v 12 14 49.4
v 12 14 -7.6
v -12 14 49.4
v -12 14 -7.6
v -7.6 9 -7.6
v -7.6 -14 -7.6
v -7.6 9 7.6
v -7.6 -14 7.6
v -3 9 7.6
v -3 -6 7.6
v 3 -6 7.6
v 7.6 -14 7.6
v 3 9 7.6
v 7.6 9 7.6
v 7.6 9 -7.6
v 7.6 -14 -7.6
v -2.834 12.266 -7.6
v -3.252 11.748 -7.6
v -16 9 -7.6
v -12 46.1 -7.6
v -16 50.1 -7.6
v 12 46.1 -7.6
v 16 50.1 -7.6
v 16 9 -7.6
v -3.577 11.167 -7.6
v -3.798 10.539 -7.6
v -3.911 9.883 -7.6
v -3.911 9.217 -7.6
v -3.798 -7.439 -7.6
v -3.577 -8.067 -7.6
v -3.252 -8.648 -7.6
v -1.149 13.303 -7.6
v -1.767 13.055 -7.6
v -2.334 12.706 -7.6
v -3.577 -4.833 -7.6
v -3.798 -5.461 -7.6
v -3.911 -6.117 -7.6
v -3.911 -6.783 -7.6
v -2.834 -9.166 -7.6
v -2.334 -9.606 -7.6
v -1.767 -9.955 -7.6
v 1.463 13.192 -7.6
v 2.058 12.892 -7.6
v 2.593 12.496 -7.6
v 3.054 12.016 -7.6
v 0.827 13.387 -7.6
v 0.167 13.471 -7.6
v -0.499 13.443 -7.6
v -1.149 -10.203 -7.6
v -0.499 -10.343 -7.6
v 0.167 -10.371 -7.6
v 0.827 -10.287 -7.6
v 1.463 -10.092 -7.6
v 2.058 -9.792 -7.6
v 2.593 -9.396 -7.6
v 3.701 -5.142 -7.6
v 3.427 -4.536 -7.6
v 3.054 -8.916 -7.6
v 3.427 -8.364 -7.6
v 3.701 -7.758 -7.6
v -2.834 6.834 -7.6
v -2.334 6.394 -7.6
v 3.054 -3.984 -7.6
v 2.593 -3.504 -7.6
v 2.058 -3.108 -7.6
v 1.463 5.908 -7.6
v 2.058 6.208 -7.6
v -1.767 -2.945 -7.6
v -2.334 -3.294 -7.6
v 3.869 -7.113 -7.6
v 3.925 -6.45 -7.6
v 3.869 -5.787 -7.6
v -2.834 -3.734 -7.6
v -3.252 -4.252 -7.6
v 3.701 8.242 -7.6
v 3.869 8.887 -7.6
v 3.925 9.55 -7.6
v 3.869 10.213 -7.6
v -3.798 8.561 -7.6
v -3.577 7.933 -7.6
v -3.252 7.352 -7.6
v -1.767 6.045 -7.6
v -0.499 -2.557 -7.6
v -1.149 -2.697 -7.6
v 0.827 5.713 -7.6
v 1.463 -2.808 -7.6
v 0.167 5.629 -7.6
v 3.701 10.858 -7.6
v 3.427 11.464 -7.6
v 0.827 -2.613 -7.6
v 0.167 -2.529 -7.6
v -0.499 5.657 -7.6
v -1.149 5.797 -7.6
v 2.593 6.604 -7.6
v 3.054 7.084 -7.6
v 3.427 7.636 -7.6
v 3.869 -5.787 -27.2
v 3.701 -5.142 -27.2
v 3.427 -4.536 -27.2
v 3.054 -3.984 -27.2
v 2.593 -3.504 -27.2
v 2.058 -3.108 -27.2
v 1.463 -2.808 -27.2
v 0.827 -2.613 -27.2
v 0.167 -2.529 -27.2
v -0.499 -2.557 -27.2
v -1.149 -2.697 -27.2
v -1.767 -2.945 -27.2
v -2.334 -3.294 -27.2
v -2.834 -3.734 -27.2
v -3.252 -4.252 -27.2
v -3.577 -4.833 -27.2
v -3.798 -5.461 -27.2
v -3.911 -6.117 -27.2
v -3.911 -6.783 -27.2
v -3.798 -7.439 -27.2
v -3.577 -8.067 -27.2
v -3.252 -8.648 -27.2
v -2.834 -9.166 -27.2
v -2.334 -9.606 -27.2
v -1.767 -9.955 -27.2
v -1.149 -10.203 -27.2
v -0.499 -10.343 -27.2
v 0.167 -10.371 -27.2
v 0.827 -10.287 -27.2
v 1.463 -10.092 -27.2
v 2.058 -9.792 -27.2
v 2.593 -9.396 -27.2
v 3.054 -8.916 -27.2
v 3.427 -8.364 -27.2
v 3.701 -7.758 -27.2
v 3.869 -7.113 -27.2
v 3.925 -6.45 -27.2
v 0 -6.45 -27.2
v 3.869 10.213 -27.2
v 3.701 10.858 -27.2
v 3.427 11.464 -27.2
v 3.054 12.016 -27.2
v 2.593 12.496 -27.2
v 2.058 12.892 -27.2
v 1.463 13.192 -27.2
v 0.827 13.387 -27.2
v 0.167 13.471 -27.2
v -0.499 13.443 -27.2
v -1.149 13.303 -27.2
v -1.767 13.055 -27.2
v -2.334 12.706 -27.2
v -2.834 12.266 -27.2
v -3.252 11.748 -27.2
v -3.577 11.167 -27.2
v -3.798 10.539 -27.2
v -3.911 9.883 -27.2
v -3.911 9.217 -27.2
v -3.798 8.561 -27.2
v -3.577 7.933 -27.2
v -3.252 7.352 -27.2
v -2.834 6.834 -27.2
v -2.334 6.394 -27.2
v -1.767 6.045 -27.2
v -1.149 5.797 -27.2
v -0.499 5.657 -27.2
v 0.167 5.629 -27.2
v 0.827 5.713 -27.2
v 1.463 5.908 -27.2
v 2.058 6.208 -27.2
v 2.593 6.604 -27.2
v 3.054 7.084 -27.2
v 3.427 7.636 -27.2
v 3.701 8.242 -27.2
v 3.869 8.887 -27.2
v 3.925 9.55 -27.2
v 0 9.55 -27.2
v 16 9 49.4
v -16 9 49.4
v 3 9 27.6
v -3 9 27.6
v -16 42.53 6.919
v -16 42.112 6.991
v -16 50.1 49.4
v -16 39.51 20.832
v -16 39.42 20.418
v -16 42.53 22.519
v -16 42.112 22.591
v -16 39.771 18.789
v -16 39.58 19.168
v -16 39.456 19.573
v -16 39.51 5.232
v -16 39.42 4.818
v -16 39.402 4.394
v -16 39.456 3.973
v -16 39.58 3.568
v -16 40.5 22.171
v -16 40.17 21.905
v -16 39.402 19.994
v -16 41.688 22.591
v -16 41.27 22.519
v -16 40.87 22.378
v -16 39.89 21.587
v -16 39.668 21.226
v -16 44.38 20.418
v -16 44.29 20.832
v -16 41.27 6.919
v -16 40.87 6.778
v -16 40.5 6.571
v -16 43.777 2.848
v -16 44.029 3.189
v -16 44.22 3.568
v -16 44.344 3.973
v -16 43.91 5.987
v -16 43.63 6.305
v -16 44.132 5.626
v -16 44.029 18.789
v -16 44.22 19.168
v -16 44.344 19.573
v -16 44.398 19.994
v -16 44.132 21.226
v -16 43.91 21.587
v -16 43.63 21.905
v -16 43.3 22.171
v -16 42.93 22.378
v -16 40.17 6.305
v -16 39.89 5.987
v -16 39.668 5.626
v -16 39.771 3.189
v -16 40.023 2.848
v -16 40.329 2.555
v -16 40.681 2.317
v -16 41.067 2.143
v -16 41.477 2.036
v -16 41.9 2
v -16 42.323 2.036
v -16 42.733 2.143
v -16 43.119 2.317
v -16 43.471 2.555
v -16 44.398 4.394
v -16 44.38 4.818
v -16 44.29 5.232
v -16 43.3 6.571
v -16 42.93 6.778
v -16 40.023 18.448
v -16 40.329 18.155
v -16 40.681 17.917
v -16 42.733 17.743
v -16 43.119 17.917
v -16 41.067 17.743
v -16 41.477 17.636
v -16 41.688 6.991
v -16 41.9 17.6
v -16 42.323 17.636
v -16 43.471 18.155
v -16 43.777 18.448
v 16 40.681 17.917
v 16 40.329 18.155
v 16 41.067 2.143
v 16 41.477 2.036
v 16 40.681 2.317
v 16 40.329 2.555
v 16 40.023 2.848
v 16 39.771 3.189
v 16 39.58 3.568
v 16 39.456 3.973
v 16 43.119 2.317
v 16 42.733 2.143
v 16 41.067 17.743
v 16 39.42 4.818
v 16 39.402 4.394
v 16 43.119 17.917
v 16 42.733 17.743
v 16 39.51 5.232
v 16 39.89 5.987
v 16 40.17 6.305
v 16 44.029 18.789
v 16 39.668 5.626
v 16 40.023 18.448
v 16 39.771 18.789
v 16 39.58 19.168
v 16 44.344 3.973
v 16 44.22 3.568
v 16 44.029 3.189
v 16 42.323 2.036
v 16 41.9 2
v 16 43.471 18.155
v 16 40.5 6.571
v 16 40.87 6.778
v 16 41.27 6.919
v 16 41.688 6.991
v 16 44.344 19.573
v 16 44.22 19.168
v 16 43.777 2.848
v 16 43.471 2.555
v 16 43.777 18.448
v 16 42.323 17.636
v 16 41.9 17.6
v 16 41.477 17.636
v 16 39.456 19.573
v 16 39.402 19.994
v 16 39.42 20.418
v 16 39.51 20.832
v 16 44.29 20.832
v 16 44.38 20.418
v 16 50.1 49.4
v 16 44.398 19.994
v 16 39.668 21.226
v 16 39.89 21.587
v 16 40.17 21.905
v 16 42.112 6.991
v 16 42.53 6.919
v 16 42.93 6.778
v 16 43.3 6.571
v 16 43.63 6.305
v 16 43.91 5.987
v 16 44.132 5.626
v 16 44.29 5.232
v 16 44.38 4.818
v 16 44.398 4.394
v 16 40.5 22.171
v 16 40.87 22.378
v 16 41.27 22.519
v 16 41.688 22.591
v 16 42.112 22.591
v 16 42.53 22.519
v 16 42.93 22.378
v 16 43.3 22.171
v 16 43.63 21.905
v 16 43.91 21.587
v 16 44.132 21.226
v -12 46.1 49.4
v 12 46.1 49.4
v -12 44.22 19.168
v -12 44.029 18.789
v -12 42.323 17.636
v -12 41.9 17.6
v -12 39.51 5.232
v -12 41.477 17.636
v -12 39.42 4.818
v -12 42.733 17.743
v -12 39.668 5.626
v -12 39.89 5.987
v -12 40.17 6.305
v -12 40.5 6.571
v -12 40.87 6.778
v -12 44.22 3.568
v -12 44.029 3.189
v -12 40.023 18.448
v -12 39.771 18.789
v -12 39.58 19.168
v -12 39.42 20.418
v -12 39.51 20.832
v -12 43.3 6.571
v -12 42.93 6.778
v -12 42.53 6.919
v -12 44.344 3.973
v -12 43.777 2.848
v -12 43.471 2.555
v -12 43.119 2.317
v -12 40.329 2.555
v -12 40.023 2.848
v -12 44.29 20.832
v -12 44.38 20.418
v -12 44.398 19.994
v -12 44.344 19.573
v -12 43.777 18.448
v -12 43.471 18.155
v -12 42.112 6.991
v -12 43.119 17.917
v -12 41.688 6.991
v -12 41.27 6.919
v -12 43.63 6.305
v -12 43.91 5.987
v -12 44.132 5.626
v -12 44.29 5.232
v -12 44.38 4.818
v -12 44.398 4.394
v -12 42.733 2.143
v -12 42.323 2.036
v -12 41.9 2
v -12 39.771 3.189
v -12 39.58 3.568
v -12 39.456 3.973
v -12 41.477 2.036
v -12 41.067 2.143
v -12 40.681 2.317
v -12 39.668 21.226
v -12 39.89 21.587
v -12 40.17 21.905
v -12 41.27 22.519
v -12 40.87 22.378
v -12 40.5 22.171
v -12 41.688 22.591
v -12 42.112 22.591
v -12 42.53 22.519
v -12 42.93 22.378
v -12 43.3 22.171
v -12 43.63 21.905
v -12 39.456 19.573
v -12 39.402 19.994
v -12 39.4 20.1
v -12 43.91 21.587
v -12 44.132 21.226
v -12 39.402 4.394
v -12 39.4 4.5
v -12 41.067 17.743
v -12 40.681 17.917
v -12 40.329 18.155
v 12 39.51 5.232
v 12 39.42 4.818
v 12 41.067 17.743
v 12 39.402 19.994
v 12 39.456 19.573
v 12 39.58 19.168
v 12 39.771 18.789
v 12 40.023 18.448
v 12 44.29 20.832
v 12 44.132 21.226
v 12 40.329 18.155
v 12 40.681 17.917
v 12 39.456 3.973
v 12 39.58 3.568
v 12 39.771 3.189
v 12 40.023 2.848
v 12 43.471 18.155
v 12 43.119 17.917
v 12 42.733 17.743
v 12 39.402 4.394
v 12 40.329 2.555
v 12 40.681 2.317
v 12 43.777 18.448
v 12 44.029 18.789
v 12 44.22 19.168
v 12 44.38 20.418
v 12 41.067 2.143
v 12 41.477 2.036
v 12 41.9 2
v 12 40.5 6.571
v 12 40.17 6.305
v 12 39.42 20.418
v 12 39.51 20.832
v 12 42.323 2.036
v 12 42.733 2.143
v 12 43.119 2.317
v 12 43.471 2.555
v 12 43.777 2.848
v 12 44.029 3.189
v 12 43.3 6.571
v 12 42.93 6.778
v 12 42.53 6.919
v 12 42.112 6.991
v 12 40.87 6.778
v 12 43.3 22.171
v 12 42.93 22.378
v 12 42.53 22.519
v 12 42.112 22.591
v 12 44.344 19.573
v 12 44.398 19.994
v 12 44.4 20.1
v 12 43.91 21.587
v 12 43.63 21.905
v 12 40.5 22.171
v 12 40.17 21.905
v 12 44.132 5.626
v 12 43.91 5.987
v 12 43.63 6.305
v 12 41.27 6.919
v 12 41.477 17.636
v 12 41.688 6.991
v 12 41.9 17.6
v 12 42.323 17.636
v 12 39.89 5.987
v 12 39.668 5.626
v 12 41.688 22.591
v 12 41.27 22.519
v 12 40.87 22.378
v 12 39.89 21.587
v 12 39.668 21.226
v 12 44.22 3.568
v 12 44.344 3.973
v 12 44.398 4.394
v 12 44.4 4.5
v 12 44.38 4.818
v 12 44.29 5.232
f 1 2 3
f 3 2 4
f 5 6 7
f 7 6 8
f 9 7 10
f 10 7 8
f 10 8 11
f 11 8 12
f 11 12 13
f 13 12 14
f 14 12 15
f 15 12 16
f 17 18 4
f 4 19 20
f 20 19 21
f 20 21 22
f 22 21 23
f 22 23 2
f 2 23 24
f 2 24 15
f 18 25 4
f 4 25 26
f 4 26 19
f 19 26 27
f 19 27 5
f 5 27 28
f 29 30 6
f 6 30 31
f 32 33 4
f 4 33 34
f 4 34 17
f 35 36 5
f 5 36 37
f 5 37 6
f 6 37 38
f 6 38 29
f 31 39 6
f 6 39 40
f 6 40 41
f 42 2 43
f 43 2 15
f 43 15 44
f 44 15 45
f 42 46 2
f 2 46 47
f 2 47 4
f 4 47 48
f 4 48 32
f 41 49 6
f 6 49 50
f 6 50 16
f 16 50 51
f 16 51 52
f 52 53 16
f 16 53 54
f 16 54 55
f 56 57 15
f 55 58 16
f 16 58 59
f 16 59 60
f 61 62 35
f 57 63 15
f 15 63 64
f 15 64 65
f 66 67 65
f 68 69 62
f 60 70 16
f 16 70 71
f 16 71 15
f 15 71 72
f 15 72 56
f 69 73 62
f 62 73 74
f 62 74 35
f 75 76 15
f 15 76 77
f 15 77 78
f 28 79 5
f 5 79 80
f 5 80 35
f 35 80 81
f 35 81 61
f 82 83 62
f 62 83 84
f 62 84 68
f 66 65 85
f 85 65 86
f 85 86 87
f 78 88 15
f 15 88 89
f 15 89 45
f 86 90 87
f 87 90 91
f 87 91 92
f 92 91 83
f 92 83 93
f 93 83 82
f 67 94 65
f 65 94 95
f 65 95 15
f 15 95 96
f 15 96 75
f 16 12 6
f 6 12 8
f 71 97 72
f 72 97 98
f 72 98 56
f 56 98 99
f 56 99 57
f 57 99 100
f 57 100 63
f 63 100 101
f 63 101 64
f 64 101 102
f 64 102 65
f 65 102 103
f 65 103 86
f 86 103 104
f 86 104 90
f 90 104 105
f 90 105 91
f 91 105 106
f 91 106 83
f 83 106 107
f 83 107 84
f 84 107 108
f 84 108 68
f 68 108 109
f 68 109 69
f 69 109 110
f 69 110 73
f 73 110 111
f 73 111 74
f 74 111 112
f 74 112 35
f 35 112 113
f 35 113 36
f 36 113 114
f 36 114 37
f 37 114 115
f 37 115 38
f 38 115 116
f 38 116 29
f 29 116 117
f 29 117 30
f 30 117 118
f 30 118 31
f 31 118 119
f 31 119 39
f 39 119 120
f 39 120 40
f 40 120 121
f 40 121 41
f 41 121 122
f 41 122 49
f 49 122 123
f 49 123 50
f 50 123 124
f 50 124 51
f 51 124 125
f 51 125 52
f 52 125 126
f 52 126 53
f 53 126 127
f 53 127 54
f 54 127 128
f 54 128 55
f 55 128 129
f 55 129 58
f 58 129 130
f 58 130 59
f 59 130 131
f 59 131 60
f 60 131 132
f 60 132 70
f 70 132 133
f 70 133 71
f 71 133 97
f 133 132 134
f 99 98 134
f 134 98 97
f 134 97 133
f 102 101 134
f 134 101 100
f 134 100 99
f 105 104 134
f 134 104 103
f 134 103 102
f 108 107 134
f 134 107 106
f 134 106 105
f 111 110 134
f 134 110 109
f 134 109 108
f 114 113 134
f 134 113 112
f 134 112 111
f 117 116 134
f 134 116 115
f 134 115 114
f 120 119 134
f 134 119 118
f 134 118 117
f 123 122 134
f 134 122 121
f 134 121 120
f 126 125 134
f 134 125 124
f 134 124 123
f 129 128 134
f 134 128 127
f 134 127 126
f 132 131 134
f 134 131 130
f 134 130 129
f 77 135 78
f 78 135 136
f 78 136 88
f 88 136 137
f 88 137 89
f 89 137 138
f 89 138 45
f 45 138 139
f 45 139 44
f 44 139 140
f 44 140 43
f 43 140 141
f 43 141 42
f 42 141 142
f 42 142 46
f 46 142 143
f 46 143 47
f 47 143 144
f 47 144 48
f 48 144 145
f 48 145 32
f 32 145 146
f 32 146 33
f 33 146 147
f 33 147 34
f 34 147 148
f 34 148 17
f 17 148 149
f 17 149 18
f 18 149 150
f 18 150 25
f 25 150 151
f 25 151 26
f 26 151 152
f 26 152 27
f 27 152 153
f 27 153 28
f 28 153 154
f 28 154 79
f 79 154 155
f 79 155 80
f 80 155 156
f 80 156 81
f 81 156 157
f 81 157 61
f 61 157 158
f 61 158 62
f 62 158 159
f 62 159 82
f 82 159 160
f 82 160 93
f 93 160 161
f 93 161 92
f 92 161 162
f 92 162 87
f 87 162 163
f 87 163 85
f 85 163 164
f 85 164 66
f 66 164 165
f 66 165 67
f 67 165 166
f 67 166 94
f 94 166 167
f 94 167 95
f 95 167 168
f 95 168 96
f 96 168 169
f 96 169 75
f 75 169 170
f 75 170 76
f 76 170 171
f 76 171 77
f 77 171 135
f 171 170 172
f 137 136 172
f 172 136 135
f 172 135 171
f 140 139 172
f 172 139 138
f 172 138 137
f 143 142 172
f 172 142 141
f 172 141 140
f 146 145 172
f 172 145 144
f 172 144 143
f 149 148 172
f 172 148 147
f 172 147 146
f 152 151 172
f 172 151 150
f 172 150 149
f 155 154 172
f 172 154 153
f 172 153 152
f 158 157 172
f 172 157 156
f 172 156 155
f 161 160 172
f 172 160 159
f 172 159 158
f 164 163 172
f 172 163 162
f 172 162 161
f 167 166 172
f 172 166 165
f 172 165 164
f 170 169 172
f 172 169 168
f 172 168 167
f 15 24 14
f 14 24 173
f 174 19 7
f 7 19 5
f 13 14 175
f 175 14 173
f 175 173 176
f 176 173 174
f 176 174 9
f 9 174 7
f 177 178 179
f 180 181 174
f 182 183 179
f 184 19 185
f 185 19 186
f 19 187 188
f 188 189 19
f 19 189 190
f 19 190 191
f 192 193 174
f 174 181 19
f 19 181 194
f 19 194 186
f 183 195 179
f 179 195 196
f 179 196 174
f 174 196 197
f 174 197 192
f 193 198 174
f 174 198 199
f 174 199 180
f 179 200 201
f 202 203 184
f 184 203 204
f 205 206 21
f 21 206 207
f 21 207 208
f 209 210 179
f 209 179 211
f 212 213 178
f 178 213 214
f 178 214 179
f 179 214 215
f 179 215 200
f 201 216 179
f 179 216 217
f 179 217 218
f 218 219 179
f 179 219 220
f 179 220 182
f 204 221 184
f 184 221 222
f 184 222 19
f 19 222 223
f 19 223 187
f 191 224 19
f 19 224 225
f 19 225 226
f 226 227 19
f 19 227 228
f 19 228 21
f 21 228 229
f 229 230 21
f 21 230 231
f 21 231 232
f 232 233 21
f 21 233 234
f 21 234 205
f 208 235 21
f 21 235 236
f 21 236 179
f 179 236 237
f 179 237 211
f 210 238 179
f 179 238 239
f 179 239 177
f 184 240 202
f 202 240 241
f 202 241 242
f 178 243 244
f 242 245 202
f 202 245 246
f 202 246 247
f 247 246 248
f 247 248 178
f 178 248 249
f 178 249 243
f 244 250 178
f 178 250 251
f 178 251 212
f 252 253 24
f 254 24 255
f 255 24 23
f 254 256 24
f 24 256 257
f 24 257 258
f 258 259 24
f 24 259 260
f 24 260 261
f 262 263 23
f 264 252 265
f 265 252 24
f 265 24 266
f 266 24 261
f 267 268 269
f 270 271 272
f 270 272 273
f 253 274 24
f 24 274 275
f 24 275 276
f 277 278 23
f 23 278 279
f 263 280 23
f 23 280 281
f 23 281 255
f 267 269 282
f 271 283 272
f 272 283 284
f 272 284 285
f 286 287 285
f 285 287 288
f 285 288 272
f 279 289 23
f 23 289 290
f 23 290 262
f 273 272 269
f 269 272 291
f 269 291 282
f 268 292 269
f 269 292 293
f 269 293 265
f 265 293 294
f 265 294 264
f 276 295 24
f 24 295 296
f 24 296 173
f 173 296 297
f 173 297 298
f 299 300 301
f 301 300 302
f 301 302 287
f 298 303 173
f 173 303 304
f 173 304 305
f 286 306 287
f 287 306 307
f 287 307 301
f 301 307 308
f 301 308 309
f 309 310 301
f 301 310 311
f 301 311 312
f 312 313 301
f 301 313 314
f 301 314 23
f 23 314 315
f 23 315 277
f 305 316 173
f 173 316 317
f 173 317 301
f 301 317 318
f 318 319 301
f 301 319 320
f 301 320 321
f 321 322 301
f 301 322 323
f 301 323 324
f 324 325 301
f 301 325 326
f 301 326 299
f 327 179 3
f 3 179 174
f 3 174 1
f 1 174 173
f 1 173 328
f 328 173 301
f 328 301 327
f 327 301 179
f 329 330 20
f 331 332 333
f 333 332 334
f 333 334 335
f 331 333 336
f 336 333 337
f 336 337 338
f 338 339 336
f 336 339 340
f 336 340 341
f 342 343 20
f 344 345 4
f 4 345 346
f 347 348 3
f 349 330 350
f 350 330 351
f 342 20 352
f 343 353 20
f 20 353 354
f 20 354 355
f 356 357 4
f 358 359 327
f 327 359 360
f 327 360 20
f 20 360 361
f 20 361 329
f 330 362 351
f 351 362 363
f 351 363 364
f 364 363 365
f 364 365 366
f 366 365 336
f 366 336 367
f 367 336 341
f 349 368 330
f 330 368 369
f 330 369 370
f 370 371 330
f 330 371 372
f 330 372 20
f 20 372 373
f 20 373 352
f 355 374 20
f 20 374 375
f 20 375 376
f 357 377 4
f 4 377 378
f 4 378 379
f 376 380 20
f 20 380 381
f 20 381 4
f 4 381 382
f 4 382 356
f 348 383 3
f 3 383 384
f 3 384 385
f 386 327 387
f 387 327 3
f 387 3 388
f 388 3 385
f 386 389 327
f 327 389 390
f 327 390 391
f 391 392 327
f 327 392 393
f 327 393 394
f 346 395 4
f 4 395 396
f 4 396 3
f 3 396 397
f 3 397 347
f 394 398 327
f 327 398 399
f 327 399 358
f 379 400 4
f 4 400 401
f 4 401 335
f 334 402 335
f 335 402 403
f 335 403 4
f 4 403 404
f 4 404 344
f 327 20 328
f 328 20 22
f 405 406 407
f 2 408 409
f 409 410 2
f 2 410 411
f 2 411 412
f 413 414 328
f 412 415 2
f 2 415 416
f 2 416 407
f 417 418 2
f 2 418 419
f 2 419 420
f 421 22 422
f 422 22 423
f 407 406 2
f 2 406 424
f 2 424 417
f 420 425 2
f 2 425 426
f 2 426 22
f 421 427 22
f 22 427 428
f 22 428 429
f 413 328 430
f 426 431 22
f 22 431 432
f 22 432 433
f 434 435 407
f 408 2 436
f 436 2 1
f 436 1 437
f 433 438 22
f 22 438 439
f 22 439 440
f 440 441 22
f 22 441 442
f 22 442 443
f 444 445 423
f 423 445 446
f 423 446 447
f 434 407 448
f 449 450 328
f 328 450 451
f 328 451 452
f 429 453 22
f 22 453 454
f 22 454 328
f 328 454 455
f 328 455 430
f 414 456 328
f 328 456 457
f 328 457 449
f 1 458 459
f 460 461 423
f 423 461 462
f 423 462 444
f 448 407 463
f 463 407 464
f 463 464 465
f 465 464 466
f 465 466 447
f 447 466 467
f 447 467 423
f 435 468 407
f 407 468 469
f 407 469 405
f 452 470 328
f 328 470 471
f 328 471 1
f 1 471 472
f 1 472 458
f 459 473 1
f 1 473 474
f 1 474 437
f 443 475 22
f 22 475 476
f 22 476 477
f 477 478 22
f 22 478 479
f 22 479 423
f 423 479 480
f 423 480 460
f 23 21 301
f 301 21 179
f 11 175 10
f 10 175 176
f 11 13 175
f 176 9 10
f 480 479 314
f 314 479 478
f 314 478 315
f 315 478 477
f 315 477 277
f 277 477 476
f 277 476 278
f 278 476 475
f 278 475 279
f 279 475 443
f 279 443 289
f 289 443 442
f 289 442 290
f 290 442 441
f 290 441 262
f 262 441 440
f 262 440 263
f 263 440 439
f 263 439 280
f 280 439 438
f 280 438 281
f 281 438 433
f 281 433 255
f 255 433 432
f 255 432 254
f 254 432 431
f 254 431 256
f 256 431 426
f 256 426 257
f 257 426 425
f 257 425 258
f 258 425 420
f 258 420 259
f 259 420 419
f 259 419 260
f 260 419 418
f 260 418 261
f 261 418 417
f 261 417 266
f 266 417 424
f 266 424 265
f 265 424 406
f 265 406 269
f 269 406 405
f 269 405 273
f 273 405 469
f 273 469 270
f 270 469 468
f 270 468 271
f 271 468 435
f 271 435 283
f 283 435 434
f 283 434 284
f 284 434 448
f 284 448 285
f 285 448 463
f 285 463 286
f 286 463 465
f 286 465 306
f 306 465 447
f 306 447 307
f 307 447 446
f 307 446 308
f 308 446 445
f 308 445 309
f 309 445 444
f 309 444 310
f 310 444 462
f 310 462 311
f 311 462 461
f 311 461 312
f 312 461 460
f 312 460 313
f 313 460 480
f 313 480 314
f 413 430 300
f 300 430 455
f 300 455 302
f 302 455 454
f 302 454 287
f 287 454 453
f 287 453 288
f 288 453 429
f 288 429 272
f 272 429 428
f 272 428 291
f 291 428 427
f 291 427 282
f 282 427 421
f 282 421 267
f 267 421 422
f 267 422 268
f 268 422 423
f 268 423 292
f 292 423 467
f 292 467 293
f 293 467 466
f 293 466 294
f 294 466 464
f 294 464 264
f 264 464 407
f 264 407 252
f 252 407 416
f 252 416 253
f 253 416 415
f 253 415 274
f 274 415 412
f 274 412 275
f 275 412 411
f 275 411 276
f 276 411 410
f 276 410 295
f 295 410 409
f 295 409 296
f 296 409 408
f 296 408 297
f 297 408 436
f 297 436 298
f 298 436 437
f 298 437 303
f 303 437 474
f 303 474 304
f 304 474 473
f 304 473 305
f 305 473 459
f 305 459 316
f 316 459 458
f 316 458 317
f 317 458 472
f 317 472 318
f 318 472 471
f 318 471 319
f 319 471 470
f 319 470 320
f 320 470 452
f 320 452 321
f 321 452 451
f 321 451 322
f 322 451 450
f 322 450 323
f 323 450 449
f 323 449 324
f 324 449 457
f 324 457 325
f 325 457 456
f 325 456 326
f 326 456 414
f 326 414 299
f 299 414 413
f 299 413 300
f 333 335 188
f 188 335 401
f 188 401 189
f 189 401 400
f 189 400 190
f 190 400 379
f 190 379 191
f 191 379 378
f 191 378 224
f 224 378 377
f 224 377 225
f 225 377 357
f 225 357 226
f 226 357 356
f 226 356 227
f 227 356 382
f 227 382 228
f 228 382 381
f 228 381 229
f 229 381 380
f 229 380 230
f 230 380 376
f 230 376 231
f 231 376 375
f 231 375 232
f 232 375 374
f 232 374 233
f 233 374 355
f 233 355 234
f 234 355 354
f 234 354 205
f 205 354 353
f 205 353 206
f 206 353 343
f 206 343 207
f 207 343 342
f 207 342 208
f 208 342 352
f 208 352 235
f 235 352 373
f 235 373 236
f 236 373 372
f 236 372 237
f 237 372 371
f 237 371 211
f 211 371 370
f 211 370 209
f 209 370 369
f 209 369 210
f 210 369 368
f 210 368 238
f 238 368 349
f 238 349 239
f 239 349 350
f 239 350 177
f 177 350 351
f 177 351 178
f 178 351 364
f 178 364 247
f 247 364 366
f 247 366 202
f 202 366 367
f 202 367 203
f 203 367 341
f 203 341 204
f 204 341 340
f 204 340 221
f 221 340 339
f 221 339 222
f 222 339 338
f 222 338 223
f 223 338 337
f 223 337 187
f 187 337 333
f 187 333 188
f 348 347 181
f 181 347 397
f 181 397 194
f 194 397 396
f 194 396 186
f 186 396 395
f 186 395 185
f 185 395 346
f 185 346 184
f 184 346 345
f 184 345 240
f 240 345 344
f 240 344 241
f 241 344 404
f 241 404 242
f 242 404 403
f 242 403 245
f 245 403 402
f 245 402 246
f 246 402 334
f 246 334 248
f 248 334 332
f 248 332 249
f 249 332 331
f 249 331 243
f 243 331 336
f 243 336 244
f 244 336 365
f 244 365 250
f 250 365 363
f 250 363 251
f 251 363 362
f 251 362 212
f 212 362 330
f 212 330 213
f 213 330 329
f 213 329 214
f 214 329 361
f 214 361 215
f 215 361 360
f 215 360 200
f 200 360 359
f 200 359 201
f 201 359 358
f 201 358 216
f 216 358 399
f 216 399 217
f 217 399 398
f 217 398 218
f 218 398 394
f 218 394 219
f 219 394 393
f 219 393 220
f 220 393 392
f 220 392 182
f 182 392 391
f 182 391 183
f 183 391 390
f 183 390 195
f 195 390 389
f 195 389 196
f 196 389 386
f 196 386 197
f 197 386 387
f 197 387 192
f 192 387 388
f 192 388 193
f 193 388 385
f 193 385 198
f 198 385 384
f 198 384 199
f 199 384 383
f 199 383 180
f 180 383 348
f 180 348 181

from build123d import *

# Parameters (mm, degrees)
SKETCH1_W               = 15.2
SKETCH1_H               = 15.2
BOSS_EXTRUDE1_DEPTH     = 14
SKETCH2_R               = 3.925
BOSS_EXTRUDE3_DEPTH     = 19.6
SKETCH3_W               = 32
SKETCH3_H               = 57
BOSS_EXTRUDE5_DEPTH     = 5
BOSS_EXTRUDE7_DEPTH     = 57
BOSS_EXTRUDE6_DEPTH     = 3
CUT_EXTRUDE1_DEPTH      = 73.155179994
CUT_EXTRUDE1_DEPTH_BACK = 73.155179994
SKETCH11_R              = 2.5


with BuildPart() as part:
    # Sketch1 → Boss-Extrude1 (new, symmetric)
    with BuildSketch(Plane(origin=(0, 0, 0), x_dir=(1, 0, 0), z_dir=(0, 1, 0))):
        Rectangle(SKETCH1_W, SKETCH1_H)
    extrude(amount=BOSS_EXTRUDE1_DEPTH, both=True)

    # Sketch2 → Boss-Extrude3 (add)
    with BuildSketch(Plane.XY.offset(-7.6)):
        with Locations((0, -6.45)):
            Circle(SKETCH2_R)
        with Locations((0, 9.55)):
            Circle(SKETCH2_R)
    extrude(amount=-BOSS_EXTRUDE3_DEPTH)

    # Sketch3 → Boss-Extrude5 (add)
    with BuildSketch(Plane(origin=(0, 14, 0), x_dir=(1, 0, 0), z_dir=(0, 1, 0))):
        with Locations((0, -20.9)):
            Rectangle(SKETCH3_W, SKETCH3_H)
    extrude(amount=-BOSS_EXTRUDE5_DEPTH)

    # Sketch9 → Boss-Extrude7 (add)
    with BuildSketch(Plane(origin=(0, 0, -7.6), x_dir=(-1, 0, 0), z_dir=(0, 0, -1))):
        Polygon((-16, 46.1), (-16, 14), (-12, 14), (-12, 46.1), (12, 46.1), (12, 14), (16, 14), (16, 50.1), (-16, 50.1), align=None)
    extrude(amount=-BOSS_EXTRUDE7_DEPTH)

    # Sketch5 → Boss-Extrude6 (add, symmetric)
    with BuildSketch(Plane(origin=(0, 0, 0), x_dir=(0, 0, -1), z_dir=(1, 0, 0))):
        Polygon((-7.6, -6), (-7.6, 9), (-27.6, 9), align=None)
    extrude(amount=BOSS_EXTRUDE6_DEPTH, both=True)

    # Sketch11 → Cut-Extrude1 (cut, two sides: drawn at the far end of the back side and taken through both)
    with BuildSketch(Plane(origin=(0, 0, 0), x_dir=(0, 0, -1), z_dir=(1, 0, 0)).offset(-CUT_EXTRUDE1_DEPTH_BACK)):
        with Locations((-20.1, 41.9)):
            Circle(SKETCH11_R)
        with Locations((-4.5, 41.9)):
            Circle(SKETCH11_R)
    extrude(amount=CUT_EXTRUDE1_DEPTH + CUT_EXTRUDE1_DEPTH_BACK, mode=Mode.SUBTRACT)


solid = part.part
